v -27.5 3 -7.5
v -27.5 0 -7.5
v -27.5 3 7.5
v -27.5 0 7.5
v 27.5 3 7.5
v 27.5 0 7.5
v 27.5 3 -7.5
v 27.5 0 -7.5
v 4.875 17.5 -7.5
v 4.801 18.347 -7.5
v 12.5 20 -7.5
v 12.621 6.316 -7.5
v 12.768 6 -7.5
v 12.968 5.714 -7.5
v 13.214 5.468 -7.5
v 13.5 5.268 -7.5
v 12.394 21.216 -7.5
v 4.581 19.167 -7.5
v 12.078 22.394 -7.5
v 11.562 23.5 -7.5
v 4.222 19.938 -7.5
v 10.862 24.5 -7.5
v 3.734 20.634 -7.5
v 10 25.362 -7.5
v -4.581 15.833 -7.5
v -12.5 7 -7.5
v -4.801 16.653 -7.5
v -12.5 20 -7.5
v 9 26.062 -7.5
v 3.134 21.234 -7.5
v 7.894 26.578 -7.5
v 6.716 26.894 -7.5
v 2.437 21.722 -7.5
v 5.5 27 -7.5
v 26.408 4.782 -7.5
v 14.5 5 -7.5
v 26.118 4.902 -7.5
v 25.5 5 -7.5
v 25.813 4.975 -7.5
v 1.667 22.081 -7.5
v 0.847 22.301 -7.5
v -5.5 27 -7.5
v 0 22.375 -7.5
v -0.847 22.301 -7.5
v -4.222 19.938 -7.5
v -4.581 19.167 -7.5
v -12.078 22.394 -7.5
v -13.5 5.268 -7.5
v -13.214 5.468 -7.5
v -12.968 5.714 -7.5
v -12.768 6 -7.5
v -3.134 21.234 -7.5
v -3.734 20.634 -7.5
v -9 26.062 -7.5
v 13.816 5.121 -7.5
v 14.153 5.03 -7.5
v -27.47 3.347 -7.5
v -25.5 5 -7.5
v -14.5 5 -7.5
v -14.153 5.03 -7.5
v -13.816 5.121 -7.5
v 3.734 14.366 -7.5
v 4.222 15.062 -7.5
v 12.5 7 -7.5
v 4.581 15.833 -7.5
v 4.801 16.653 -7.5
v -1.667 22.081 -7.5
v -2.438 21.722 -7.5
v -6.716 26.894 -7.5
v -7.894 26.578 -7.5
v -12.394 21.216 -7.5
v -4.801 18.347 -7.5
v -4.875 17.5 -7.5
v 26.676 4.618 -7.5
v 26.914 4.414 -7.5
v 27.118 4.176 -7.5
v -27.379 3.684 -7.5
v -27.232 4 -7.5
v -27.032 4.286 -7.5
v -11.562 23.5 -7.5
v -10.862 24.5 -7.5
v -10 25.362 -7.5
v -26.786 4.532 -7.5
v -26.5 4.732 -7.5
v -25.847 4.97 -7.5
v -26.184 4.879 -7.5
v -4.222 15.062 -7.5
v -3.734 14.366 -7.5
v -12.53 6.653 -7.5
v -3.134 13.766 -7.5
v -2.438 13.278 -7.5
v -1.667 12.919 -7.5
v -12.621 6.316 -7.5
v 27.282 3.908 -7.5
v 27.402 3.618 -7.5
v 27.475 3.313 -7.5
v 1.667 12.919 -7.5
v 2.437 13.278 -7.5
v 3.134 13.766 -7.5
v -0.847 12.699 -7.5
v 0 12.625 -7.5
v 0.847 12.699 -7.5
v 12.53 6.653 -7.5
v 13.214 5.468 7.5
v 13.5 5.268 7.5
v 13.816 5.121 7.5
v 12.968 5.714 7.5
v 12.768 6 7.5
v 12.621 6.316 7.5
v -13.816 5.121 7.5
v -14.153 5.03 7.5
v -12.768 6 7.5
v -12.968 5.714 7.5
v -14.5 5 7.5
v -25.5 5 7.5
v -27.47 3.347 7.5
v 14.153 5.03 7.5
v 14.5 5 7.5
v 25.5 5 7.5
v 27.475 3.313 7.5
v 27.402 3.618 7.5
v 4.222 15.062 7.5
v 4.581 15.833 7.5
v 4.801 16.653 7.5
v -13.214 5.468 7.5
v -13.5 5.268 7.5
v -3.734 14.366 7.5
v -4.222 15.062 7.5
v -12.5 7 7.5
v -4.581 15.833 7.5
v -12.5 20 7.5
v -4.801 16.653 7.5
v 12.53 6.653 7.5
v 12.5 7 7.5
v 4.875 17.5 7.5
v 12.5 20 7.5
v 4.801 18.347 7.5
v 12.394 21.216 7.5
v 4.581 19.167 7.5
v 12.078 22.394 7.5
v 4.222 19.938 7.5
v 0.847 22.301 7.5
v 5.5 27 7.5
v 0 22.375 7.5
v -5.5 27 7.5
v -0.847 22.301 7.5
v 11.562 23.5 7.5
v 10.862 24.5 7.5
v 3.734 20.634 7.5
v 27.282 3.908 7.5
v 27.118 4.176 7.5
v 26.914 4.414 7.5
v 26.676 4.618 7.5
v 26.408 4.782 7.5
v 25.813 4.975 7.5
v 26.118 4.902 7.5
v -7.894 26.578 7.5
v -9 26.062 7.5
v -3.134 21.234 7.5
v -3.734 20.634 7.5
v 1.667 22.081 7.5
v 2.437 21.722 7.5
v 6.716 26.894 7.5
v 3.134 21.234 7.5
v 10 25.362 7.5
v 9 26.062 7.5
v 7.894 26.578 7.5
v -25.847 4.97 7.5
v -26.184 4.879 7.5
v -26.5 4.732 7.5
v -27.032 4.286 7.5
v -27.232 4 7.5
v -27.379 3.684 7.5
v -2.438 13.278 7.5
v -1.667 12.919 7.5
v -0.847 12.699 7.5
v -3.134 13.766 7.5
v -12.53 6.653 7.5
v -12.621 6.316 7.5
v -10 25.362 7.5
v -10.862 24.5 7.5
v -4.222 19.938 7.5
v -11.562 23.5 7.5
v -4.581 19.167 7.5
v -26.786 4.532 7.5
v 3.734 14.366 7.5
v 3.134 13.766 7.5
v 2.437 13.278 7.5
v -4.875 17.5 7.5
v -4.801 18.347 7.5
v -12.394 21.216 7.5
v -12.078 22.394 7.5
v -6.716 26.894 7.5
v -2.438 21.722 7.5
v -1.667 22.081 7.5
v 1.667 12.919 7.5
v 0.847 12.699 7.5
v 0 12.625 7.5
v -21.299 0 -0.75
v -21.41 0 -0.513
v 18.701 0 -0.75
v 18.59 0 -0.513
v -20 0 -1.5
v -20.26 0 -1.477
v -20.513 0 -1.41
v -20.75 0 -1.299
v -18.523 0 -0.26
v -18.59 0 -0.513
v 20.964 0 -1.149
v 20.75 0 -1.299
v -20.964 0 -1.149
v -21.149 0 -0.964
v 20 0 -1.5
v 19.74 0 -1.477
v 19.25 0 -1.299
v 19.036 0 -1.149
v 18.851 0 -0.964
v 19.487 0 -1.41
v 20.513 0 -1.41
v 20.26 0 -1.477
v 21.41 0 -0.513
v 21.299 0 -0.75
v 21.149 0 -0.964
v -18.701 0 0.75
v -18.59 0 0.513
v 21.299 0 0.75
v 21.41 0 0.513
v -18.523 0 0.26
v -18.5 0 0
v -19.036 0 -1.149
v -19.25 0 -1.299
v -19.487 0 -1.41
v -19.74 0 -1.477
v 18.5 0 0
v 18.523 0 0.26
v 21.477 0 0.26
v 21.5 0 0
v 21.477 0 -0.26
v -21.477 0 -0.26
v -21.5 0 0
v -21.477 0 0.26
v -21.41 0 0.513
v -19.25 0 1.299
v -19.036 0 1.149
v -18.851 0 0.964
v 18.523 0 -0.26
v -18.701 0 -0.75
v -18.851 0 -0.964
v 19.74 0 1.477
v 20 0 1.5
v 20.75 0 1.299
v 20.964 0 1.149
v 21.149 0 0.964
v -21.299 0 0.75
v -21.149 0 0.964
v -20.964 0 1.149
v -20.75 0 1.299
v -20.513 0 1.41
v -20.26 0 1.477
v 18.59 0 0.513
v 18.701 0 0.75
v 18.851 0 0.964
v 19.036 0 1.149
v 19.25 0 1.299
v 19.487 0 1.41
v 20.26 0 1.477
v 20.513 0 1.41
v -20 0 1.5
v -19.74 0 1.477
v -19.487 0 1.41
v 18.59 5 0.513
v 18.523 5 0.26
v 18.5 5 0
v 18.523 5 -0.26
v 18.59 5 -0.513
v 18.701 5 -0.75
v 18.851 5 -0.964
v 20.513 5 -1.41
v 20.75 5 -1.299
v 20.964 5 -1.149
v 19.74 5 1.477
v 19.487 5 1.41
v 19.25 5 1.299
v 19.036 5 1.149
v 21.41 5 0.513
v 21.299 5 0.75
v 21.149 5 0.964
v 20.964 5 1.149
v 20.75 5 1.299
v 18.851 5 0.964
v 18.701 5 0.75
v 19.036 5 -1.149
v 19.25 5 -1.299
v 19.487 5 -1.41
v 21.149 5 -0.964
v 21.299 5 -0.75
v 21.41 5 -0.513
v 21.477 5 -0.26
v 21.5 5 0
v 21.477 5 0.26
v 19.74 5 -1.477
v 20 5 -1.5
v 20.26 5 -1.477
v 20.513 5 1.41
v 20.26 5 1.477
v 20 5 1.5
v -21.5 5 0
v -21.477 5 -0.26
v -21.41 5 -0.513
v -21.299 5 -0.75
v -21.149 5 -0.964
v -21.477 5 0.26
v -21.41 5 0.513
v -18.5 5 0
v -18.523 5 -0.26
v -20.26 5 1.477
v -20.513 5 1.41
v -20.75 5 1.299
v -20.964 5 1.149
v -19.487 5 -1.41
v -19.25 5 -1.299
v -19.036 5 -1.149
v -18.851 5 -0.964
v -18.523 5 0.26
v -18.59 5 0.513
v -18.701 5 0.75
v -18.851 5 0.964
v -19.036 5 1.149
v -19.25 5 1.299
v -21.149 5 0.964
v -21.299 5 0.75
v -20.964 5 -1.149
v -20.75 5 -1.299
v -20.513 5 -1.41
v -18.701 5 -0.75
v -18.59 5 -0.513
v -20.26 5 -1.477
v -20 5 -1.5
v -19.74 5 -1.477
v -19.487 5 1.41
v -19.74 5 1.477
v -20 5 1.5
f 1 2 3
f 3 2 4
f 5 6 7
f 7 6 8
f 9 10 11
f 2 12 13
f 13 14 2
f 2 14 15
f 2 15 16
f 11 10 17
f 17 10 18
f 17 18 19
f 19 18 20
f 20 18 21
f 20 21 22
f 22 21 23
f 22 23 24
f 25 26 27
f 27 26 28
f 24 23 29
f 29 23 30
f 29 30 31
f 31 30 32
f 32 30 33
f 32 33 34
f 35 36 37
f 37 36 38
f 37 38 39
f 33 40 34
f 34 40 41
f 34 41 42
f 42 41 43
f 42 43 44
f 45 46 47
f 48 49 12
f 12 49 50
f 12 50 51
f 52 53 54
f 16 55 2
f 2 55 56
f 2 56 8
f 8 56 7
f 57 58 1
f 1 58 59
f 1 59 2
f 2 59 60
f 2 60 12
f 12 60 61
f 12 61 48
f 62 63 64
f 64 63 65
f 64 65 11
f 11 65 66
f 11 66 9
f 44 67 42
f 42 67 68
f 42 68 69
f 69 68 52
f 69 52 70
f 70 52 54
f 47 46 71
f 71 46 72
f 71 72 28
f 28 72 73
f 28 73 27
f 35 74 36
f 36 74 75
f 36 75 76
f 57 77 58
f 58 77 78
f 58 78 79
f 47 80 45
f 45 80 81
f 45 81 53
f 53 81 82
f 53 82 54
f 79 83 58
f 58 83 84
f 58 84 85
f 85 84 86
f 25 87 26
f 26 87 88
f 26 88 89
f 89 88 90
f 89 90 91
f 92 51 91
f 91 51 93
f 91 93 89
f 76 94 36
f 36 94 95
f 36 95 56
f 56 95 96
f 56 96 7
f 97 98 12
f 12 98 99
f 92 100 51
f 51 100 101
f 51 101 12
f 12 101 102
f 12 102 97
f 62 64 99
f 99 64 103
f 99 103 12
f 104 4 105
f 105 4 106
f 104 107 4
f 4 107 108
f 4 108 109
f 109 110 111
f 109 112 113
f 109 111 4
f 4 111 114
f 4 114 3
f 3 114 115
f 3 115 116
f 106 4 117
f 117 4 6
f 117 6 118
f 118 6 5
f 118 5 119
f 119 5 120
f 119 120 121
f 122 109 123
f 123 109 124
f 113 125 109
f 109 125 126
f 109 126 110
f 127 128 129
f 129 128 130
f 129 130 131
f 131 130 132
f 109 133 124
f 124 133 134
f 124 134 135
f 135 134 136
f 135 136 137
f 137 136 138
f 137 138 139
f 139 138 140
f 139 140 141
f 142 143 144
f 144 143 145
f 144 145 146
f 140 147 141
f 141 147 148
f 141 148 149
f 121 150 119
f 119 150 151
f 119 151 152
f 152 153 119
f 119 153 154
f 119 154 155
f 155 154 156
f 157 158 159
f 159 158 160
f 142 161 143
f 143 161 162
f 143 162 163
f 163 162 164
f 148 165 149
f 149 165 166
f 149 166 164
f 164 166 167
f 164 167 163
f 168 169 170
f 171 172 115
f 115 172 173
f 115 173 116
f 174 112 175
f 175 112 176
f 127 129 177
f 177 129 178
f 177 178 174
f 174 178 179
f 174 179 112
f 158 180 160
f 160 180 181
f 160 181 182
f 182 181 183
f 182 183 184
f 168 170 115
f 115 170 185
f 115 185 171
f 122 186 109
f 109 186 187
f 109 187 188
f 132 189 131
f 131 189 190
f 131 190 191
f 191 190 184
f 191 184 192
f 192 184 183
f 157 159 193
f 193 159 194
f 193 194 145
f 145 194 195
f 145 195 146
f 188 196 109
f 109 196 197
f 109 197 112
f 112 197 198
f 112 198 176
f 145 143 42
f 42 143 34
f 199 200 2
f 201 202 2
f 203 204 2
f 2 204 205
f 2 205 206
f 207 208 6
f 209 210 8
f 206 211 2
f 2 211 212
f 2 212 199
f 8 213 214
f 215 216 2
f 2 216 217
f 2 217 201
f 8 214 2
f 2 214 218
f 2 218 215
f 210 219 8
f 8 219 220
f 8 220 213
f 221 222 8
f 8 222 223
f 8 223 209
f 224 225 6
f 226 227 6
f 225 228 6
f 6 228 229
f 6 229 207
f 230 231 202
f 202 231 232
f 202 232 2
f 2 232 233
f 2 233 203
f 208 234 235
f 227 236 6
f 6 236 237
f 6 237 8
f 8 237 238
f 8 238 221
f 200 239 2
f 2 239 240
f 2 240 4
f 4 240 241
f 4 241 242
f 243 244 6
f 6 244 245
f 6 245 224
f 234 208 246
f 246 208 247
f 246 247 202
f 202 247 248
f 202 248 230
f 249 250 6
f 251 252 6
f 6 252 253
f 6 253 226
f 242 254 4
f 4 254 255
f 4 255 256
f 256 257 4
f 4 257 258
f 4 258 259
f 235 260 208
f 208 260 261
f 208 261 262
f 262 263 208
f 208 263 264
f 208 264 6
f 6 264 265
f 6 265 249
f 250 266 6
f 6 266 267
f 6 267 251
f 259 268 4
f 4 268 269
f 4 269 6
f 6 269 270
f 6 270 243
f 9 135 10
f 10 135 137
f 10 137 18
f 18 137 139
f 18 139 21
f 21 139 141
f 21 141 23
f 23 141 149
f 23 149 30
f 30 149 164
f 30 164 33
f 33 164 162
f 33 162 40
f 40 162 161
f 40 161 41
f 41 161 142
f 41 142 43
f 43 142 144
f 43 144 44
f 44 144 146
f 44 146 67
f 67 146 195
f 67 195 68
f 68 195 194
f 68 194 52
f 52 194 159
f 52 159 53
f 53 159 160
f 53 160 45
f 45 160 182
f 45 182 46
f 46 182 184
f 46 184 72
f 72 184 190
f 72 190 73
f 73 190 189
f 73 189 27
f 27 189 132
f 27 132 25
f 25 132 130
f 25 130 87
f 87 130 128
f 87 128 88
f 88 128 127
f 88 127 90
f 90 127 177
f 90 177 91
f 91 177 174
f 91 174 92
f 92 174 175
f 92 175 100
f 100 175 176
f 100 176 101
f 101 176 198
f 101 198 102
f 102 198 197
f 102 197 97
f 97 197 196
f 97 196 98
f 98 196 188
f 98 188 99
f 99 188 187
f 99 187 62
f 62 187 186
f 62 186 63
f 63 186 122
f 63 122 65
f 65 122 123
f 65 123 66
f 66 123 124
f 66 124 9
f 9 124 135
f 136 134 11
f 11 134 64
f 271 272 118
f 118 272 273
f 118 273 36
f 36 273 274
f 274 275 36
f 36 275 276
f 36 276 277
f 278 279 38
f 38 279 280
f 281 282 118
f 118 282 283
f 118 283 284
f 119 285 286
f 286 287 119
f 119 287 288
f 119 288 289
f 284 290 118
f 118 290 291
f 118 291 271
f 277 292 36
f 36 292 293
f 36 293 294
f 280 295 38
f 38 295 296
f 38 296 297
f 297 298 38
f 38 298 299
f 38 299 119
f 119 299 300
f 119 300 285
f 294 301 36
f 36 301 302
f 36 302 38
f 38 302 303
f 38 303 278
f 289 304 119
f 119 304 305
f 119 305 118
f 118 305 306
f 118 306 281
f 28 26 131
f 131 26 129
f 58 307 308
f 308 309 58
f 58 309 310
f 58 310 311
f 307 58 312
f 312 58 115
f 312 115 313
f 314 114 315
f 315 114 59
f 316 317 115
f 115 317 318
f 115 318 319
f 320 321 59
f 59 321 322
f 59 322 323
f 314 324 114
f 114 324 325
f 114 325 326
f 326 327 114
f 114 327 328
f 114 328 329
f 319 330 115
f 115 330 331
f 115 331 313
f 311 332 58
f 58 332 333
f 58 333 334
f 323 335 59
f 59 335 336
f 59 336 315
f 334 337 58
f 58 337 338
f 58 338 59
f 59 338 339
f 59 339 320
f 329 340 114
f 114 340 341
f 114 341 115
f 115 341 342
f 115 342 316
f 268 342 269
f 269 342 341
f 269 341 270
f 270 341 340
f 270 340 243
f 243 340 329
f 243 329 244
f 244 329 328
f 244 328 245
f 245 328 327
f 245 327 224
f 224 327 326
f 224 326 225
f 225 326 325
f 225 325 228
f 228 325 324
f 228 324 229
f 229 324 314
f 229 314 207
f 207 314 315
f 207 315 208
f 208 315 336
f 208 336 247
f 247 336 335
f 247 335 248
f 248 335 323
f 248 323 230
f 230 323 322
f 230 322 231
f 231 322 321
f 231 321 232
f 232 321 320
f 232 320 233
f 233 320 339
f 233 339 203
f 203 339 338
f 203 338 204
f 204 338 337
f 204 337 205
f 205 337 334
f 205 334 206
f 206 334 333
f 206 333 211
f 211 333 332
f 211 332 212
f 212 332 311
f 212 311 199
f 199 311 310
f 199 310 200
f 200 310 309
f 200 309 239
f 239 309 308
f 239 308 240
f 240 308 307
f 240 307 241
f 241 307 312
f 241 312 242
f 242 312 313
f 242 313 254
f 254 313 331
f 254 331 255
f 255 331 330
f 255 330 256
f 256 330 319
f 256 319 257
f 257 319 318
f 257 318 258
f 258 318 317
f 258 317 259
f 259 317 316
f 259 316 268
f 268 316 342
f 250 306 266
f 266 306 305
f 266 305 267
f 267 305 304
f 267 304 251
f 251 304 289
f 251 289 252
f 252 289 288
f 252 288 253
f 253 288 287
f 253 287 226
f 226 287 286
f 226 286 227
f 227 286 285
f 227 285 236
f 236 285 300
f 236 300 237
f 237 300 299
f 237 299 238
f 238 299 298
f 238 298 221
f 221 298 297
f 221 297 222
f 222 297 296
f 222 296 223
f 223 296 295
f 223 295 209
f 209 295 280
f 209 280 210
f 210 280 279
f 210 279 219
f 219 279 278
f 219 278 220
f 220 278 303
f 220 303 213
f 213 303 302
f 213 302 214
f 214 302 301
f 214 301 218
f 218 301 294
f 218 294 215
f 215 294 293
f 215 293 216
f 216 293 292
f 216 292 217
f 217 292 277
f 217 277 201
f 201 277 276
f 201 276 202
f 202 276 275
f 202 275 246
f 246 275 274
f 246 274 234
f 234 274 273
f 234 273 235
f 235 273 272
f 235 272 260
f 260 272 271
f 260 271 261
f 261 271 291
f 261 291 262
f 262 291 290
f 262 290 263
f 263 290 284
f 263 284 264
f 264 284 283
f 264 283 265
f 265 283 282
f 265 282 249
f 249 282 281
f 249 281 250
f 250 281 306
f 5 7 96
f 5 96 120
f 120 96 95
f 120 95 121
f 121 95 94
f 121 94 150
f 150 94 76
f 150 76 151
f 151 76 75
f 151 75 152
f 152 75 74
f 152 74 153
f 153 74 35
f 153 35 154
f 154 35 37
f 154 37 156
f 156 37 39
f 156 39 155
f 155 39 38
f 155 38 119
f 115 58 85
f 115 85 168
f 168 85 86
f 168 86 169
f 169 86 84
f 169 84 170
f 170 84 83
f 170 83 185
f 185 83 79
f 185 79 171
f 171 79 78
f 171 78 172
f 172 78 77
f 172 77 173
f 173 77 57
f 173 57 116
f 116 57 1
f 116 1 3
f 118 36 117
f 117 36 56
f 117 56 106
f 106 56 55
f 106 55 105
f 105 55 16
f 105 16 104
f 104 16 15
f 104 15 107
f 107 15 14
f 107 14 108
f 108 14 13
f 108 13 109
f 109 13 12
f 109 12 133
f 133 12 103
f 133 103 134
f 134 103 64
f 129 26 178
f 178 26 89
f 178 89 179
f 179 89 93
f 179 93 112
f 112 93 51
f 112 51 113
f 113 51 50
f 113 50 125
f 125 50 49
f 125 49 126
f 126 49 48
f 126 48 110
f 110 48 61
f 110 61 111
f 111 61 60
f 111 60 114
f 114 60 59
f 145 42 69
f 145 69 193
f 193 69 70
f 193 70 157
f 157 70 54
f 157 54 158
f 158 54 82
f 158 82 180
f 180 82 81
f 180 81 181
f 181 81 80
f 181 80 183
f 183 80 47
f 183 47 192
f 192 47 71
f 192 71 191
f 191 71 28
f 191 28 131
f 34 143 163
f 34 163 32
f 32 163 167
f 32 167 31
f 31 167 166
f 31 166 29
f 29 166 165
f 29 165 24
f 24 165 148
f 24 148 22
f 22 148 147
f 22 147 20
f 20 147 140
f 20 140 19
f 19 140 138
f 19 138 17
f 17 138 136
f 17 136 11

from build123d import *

# Parameters (mm, degrees)
SKETCH1_W               = 55
SKETCH1_H               = 15
BOSS_EXTRUDE1_DEPTH     = 27
CUT_EXTRUDE1_DEPTH      = 42.355168964
CUT_EXTRUDE1_DEPTH_BACK = 42.355168964
SKETCH2_R               = 4.875
SKETCH4_W               = 15
SKETCH4_H               = 15
CUT_EXTRUDE2_DEPTH      = 22
CUT_EXTRUDE3_DEPTH      = 37.006943775
CUT_EXTRUDE3_DEPTH_BACK = 37.006943775
SKETCH5_R               = 1.5
FILLET1_R               = 2
FILLET2_R               = 7


with BuildPart() as part:
    # Sketch1 → Boss-Extrude1 (new body)
    with BuildSketch(Plane(origin=(0, 0, 0), x_dir=(1, 0, 0), z_dir=(0, 1, 0))):
        Rectangle(SKETCH1_W, SKETCH1_H)
    extrude(amount=BOSS_EXTRUDE1_DEPTH)

    # Sketch2 → Cut-Extrude1 (cut, two sides: drawn at the far end of the back side and taken through both)
    with BuildSketch(Plane.XY.offset(7.5).offset(-CUT_EXTRUDE1_DEPTH_BACK)):
        with Locations((0, 17.5)):
            Circle(SKETCH2_R)
    extrude(amount=CUT_EXTRUDE1_DEPTH + CUT_EXTRUDE1_DEPTH_BACK, mode=Mode.SUBTRACT)

    # Sketch4 → Cut-Extrude2 (cut)
    with BuildSketch(Plane(origin=(0, 27, 0), x_dir=(1, 0, 0), z_dir=(0, 1, 0))):
        with Locations((-20, 0)):
            Rectangle(SKETCH4_W, SKETCH4_H)
        with Locations((20, 0)):
            Rectangle(SKETCH4_W, SKETCH4_H)
    extrude(amount=-CUT_EXTRUDE2_DEPTH, mode=Mode.SUBTRACT)

    # Sketch5 → Cut-Extrude3 (cut, two sides: drawn at the far end of the back side and taken through both)
    with BuildSketch(Plane(origin=(0, 5, 0), x_dir=(1, 0, 0), z_dir=(0, 1, 0)).offset(-CUT_EXTRUDE3_DEPTH_BACK)):
        with Locations(Location((-20, 0, 0), (0, 0, 270))):
            Circle(SKETCH5_R)
        with Locations(Location((20, 0, 0), (0, 0, 270))):
            Circle(SKETCH5_R)
    extrude(amount=CUT_EXTRUDE3_DEPTH + CUT_EXTRUDE3_DEPTH_BACK, mode=Mode.SUBTRACT)

    # Fillet1
    fillet1_edges = [part.edges().sort_by_distance(p)[0] for p in [
        (-27.5, 5, 0),
        (-12.5, 5, 0),
        (27.5, 5, 0),
        (12.5, 5, 0),
    ]]
    fillet(fillet1_edges, radius=FILLET1_R)

    # Fillet2
    fillet2_edges = [part.edges().sort_by_distance(p)[0] for p in [
        (-12.5, 27, 0),
        (12.5, 27, 0),
    ]]
    fillet(fillet2_edges, radius=FILLET2_R)


solid = part.part
